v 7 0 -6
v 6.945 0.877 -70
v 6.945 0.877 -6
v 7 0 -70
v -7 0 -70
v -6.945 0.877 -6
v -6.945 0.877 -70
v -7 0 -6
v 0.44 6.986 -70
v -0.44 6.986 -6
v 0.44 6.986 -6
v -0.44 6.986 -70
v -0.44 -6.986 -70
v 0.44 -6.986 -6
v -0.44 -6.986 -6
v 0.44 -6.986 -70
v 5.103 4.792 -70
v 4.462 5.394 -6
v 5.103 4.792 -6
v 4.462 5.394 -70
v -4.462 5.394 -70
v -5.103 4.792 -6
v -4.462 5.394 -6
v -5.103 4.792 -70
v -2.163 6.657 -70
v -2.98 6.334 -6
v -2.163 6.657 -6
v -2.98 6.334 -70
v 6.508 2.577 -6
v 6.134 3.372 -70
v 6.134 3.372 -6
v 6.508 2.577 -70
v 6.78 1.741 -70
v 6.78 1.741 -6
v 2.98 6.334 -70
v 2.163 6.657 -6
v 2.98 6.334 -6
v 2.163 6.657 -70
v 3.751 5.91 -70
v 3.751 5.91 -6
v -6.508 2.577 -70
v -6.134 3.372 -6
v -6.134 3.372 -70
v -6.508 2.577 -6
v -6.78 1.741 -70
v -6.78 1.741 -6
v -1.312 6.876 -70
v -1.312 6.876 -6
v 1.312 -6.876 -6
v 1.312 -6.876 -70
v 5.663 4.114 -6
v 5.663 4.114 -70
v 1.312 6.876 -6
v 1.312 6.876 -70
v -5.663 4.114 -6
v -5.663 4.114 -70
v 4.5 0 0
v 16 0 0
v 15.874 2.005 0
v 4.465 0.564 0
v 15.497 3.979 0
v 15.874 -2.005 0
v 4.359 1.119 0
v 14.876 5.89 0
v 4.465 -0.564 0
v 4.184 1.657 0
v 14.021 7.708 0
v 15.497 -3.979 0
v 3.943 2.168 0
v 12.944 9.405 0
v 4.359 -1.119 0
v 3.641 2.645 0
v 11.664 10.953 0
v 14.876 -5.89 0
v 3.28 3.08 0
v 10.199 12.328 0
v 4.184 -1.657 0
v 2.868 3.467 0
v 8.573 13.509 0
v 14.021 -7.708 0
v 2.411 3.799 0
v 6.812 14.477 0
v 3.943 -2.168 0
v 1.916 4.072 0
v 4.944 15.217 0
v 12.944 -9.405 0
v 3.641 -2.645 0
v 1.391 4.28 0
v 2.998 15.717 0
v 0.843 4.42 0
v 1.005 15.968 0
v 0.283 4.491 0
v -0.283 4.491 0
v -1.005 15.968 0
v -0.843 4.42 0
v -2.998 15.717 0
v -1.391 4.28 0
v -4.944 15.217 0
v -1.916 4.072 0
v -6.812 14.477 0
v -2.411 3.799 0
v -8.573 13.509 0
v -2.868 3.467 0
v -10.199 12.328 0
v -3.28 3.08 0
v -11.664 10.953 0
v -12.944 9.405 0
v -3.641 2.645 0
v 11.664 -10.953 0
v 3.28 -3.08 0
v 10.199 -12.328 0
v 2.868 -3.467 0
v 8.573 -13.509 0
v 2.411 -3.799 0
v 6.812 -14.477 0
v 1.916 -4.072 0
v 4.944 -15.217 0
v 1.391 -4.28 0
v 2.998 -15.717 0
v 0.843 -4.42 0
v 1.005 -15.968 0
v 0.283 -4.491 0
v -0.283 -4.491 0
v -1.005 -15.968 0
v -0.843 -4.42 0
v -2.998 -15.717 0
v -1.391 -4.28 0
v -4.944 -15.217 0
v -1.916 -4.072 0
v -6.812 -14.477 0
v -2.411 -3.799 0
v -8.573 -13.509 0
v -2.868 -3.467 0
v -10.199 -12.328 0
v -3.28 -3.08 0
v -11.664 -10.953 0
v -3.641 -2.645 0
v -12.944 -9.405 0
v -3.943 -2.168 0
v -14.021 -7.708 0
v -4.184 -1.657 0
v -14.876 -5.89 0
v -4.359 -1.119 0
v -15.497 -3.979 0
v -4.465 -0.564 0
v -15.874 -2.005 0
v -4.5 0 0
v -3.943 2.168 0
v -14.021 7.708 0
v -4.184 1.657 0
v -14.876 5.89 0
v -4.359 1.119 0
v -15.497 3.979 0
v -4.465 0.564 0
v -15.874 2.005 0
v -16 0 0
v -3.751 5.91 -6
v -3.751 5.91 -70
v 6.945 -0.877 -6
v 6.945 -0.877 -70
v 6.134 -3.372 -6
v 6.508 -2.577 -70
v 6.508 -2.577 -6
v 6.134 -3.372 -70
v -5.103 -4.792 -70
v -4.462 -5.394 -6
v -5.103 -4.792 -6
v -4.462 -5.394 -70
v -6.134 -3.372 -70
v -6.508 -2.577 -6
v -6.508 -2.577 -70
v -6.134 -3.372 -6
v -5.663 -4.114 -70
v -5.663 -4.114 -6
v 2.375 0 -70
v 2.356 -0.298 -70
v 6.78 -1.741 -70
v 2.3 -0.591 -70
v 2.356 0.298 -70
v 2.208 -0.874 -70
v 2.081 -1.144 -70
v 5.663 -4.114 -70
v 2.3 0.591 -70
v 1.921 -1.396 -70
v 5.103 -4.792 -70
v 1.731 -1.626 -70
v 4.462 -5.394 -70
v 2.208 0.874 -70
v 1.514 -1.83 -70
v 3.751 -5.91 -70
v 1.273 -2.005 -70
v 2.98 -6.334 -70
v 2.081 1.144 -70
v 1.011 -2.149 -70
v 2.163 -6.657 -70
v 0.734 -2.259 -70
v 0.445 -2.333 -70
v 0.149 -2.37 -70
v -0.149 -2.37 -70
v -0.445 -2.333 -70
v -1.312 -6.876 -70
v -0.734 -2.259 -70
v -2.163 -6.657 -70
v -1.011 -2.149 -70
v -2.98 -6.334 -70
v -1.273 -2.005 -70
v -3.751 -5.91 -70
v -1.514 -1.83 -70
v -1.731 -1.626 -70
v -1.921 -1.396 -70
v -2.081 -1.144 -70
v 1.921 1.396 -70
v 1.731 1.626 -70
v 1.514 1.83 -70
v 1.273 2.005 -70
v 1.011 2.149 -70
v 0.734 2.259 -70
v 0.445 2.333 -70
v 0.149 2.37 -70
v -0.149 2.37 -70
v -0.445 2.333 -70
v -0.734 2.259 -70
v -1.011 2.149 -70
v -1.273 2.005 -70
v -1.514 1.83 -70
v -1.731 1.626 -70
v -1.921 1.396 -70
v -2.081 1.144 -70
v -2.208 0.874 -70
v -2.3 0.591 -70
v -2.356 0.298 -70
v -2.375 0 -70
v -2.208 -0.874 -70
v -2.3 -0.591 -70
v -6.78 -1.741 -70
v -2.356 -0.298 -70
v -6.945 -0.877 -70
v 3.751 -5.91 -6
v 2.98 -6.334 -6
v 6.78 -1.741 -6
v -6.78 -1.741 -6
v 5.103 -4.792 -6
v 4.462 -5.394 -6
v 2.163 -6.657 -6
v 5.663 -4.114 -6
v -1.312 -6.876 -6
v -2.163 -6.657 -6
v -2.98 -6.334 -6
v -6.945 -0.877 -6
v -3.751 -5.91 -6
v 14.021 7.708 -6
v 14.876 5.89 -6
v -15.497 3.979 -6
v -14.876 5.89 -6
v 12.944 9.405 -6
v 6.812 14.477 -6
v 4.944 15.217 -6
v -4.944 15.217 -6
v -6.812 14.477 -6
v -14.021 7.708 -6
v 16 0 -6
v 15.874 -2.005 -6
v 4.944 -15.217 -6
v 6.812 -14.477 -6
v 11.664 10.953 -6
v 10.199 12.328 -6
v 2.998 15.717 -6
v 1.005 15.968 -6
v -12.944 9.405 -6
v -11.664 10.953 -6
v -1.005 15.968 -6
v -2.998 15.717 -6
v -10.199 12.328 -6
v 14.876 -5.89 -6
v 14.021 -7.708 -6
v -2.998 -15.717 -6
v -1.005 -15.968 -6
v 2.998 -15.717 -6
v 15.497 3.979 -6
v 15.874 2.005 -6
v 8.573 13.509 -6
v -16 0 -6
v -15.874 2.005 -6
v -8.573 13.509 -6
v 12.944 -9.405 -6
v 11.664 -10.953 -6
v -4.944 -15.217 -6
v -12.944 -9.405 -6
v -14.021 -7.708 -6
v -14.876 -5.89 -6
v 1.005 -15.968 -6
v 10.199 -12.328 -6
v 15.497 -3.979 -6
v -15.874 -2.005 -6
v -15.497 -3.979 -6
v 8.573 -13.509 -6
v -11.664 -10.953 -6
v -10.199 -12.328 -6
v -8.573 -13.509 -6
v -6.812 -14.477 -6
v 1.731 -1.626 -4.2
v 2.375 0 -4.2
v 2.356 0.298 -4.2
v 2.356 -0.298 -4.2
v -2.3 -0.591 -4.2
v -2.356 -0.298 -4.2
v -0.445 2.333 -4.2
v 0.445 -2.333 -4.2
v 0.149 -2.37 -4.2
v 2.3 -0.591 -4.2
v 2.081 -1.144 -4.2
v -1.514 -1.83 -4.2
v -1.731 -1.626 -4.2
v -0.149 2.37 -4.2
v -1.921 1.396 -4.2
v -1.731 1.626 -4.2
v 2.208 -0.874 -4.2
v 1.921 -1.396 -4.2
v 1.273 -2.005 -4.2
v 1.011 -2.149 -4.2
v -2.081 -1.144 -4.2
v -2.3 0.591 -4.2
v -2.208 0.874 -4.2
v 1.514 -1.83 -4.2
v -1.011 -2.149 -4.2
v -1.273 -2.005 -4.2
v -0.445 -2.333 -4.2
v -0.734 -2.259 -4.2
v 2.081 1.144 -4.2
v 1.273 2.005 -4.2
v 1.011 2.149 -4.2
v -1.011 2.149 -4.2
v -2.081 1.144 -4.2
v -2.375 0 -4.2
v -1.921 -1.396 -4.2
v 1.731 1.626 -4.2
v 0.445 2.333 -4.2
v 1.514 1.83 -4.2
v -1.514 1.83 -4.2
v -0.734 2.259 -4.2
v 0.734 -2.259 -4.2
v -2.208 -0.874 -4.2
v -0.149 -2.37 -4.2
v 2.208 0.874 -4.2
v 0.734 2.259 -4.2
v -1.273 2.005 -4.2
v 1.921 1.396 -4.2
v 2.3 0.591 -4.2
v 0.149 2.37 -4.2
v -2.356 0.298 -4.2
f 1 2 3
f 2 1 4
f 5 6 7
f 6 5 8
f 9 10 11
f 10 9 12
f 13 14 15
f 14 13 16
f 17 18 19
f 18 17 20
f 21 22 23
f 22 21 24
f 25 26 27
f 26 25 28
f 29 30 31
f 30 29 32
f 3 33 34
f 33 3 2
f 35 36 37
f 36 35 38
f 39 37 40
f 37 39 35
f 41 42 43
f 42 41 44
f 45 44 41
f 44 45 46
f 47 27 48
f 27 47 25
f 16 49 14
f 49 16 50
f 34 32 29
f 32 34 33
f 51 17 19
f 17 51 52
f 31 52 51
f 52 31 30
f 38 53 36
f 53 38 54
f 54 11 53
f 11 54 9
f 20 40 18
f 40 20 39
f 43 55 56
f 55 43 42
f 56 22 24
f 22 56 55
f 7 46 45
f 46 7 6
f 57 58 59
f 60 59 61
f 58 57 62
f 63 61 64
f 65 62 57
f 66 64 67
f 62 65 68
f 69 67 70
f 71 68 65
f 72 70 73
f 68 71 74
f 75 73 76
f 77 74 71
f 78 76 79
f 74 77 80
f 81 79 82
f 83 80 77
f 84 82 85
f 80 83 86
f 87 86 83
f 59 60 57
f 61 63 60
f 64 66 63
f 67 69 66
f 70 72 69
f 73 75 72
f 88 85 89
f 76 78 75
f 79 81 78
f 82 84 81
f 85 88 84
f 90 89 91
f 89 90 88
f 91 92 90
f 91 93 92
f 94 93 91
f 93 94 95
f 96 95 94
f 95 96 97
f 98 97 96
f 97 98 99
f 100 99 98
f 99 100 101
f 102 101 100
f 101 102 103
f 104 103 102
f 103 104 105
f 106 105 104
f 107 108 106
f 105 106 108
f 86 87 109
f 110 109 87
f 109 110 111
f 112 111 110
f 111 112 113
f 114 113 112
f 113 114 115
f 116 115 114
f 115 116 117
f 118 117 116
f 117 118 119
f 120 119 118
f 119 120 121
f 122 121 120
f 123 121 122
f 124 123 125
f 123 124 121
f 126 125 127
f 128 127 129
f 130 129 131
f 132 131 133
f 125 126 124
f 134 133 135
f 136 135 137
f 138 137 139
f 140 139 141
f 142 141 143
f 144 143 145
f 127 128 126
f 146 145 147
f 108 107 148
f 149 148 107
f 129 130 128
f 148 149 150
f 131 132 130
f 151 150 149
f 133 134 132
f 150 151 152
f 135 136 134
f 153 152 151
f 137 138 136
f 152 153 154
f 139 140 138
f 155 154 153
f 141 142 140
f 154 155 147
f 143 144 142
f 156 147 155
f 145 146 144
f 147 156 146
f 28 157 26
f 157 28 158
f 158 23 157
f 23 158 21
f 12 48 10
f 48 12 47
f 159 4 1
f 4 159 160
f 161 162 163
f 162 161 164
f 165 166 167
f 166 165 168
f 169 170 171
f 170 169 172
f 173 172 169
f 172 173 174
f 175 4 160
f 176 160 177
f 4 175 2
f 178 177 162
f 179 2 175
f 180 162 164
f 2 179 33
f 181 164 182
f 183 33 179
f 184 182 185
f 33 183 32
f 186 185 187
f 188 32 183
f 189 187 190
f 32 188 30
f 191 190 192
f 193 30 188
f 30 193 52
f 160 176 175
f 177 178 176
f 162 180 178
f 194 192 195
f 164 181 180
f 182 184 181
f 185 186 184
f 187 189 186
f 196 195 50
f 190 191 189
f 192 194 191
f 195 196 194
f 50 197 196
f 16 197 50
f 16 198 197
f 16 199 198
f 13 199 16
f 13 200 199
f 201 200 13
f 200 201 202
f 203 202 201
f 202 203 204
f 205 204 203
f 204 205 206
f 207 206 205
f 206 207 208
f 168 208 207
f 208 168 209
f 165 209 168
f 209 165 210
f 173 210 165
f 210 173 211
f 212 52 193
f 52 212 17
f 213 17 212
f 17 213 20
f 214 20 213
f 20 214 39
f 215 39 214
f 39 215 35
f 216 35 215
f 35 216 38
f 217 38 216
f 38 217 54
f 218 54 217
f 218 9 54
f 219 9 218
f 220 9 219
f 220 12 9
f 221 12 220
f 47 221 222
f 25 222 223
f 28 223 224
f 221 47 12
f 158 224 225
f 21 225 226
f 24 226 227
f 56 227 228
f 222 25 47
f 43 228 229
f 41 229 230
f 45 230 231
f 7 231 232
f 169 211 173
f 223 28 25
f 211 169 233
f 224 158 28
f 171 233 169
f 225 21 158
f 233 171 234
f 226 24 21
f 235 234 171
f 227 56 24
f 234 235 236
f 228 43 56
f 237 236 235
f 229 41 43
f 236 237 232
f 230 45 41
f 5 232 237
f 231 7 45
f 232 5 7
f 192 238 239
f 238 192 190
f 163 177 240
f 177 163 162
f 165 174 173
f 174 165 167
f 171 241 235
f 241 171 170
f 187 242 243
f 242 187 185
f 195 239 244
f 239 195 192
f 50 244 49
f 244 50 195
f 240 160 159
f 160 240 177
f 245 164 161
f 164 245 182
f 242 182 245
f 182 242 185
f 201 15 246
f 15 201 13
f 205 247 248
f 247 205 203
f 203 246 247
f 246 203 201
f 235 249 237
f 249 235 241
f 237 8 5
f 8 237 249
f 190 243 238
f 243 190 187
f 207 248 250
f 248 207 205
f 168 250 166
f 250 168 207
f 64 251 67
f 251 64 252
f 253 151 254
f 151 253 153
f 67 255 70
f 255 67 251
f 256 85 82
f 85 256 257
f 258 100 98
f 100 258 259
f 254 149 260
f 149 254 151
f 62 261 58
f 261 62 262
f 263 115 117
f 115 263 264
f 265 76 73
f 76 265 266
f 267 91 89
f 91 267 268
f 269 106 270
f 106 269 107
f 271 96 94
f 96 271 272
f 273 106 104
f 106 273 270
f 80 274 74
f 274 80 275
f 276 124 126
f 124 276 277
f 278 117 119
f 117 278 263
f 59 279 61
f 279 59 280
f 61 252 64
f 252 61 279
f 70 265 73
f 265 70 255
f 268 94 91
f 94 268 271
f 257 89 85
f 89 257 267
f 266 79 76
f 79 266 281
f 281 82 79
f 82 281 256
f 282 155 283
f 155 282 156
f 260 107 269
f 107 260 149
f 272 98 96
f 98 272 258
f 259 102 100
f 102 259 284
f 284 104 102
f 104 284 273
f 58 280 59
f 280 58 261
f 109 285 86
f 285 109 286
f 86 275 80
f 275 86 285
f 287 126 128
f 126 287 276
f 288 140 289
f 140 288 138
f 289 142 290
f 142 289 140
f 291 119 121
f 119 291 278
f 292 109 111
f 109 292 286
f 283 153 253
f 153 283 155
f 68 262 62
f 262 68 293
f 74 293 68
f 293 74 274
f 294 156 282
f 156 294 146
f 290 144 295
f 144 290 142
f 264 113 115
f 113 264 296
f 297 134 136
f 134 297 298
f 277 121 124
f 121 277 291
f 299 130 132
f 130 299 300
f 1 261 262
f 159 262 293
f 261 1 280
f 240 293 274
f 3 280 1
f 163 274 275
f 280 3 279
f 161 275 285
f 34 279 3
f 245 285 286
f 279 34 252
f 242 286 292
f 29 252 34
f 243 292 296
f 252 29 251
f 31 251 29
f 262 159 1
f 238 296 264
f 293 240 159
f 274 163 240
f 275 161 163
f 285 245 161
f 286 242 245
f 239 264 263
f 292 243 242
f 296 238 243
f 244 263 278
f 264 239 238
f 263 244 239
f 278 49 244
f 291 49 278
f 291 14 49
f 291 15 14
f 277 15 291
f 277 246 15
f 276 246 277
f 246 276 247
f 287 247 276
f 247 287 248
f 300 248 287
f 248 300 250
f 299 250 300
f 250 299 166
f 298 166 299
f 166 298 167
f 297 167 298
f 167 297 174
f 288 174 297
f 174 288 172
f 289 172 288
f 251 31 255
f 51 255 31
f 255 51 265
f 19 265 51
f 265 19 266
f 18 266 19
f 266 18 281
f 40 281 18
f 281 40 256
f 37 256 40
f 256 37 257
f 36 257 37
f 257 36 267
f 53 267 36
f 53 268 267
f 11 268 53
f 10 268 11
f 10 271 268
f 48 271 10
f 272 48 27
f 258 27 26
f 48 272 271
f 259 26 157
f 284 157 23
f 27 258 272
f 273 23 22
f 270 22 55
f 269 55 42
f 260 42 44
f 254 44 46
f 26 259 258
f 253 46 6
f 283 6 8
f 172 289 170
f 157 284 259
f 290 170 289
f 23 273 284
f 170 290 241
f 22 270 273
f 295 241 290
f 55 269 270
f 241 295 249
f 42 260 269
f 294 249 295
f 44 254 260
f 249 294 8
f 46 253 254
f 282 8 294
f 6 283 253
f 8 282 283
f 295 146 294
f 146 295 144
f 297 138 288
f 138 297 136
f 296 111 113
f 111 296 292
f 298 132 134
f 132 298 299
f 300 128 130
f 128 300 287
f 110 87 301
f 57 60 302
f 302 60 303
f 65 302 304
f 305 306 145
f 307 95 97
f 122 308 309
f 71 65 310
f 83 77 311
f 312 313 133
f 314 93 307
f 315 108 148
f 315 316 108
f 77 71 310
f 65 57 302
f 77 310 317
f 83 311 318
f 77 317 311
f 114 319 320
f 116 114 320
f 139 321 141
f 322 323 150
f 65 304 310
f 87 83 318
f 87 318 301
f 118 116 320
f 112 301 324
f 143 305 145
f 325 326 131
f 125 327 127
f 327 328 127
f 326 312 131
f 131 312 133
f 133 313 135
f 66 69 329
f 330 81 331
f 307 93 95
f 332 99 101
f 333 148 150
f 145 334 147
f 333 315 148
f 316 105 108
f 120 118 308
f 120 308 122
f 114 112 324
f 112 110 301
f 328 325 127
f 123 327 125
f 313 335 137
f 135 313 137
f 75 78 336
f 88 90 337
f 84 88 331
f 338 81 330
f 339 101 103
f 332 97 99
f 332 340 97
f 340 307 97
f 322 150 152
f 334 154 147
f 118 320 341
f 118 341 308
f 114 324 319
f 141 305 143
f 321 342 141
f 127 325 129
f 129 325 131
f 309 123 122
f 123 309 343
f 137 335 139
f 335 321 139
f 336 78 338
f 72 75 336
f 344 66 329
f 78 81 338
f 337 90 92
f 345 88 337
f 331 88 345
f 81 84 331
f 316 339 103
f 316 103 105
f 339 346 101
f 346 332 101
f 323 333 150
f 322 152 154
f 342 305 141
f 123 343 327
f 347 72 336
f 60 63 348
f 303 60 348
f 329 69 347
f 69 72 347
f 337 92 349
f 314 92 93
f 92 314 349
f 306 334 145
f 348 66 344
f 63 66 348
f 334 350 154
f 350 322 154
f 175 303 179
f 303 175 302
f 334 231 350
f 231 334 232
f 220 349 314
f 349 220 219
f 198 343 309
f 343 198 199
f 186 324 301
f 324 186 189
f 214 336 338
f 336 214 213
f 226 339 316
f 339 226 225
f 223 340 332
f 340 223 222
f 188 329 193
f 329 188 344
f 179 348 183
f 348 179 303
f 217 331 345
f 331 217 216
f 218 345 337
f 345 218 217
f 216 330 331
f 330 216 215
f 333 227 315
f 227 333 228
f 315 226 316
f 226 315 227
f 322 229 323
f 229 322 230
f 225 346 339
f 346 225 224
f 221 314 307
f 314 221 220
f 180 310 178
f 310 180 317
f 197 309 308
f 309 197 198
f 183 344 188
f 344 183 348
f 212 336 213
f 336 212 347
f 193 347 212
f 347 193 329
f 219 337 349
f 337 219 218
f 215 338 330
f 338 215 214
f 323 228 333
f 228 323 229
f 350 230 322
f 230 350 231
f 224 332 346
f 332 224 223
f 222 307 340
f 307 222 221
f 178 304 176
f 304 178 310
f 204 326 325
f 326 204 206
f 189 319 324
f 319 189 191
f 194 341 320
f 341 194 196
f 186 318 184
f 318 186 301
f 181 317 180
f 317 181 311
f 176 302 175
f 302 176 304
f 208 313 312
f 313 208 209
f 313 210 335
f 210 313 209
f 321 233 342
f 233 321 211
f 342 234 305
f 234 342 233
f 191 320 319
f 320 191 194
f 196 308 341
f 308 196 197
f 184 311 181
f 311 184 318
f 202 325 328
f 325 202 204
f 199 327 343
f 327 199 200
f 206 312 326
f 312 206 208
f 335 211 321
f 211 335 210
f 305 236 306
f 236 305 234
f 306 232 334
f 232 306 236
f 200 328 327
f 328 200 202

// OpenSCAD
$fn = 50;


difference() {
	union() {
		translate(v = [0, 0, -70.0000000000]) {
			cylinder(h = 70, r = 7.0000000000);
		}
		translate(v = [0, 0, -6.0000000000]) {
			cylinder(h = 6, r = 16.0000000000);
		}
	}
	union() {
		translate(v = [0, 0, 0]) {
			rotate(a = [0, 0, 0]) {
				difference() {
					union() {
						#translate(v = [0, 0, -70.0000000000]) {
							cylinder(h = 70, r = 2.2500000000);
						}
						#translate(v = [0, 0, -4.2000000000]) {
							cylinder(h = 4.2000000000, r = 7.0000000000, r1 = 2.3750000000, r2 = 4.5000000000);
						}
						#translate(v = [0, 0, -70.0000000000]) {
							cylinder(h = 70, r = 2.3750000000);
						}
						#translate(v = [0, 0, -70.0000000000]) {
							cylinder(h = 70, r = 2.2500000000);
						}
					}
					union();
				}
			}
		}
	}
}
